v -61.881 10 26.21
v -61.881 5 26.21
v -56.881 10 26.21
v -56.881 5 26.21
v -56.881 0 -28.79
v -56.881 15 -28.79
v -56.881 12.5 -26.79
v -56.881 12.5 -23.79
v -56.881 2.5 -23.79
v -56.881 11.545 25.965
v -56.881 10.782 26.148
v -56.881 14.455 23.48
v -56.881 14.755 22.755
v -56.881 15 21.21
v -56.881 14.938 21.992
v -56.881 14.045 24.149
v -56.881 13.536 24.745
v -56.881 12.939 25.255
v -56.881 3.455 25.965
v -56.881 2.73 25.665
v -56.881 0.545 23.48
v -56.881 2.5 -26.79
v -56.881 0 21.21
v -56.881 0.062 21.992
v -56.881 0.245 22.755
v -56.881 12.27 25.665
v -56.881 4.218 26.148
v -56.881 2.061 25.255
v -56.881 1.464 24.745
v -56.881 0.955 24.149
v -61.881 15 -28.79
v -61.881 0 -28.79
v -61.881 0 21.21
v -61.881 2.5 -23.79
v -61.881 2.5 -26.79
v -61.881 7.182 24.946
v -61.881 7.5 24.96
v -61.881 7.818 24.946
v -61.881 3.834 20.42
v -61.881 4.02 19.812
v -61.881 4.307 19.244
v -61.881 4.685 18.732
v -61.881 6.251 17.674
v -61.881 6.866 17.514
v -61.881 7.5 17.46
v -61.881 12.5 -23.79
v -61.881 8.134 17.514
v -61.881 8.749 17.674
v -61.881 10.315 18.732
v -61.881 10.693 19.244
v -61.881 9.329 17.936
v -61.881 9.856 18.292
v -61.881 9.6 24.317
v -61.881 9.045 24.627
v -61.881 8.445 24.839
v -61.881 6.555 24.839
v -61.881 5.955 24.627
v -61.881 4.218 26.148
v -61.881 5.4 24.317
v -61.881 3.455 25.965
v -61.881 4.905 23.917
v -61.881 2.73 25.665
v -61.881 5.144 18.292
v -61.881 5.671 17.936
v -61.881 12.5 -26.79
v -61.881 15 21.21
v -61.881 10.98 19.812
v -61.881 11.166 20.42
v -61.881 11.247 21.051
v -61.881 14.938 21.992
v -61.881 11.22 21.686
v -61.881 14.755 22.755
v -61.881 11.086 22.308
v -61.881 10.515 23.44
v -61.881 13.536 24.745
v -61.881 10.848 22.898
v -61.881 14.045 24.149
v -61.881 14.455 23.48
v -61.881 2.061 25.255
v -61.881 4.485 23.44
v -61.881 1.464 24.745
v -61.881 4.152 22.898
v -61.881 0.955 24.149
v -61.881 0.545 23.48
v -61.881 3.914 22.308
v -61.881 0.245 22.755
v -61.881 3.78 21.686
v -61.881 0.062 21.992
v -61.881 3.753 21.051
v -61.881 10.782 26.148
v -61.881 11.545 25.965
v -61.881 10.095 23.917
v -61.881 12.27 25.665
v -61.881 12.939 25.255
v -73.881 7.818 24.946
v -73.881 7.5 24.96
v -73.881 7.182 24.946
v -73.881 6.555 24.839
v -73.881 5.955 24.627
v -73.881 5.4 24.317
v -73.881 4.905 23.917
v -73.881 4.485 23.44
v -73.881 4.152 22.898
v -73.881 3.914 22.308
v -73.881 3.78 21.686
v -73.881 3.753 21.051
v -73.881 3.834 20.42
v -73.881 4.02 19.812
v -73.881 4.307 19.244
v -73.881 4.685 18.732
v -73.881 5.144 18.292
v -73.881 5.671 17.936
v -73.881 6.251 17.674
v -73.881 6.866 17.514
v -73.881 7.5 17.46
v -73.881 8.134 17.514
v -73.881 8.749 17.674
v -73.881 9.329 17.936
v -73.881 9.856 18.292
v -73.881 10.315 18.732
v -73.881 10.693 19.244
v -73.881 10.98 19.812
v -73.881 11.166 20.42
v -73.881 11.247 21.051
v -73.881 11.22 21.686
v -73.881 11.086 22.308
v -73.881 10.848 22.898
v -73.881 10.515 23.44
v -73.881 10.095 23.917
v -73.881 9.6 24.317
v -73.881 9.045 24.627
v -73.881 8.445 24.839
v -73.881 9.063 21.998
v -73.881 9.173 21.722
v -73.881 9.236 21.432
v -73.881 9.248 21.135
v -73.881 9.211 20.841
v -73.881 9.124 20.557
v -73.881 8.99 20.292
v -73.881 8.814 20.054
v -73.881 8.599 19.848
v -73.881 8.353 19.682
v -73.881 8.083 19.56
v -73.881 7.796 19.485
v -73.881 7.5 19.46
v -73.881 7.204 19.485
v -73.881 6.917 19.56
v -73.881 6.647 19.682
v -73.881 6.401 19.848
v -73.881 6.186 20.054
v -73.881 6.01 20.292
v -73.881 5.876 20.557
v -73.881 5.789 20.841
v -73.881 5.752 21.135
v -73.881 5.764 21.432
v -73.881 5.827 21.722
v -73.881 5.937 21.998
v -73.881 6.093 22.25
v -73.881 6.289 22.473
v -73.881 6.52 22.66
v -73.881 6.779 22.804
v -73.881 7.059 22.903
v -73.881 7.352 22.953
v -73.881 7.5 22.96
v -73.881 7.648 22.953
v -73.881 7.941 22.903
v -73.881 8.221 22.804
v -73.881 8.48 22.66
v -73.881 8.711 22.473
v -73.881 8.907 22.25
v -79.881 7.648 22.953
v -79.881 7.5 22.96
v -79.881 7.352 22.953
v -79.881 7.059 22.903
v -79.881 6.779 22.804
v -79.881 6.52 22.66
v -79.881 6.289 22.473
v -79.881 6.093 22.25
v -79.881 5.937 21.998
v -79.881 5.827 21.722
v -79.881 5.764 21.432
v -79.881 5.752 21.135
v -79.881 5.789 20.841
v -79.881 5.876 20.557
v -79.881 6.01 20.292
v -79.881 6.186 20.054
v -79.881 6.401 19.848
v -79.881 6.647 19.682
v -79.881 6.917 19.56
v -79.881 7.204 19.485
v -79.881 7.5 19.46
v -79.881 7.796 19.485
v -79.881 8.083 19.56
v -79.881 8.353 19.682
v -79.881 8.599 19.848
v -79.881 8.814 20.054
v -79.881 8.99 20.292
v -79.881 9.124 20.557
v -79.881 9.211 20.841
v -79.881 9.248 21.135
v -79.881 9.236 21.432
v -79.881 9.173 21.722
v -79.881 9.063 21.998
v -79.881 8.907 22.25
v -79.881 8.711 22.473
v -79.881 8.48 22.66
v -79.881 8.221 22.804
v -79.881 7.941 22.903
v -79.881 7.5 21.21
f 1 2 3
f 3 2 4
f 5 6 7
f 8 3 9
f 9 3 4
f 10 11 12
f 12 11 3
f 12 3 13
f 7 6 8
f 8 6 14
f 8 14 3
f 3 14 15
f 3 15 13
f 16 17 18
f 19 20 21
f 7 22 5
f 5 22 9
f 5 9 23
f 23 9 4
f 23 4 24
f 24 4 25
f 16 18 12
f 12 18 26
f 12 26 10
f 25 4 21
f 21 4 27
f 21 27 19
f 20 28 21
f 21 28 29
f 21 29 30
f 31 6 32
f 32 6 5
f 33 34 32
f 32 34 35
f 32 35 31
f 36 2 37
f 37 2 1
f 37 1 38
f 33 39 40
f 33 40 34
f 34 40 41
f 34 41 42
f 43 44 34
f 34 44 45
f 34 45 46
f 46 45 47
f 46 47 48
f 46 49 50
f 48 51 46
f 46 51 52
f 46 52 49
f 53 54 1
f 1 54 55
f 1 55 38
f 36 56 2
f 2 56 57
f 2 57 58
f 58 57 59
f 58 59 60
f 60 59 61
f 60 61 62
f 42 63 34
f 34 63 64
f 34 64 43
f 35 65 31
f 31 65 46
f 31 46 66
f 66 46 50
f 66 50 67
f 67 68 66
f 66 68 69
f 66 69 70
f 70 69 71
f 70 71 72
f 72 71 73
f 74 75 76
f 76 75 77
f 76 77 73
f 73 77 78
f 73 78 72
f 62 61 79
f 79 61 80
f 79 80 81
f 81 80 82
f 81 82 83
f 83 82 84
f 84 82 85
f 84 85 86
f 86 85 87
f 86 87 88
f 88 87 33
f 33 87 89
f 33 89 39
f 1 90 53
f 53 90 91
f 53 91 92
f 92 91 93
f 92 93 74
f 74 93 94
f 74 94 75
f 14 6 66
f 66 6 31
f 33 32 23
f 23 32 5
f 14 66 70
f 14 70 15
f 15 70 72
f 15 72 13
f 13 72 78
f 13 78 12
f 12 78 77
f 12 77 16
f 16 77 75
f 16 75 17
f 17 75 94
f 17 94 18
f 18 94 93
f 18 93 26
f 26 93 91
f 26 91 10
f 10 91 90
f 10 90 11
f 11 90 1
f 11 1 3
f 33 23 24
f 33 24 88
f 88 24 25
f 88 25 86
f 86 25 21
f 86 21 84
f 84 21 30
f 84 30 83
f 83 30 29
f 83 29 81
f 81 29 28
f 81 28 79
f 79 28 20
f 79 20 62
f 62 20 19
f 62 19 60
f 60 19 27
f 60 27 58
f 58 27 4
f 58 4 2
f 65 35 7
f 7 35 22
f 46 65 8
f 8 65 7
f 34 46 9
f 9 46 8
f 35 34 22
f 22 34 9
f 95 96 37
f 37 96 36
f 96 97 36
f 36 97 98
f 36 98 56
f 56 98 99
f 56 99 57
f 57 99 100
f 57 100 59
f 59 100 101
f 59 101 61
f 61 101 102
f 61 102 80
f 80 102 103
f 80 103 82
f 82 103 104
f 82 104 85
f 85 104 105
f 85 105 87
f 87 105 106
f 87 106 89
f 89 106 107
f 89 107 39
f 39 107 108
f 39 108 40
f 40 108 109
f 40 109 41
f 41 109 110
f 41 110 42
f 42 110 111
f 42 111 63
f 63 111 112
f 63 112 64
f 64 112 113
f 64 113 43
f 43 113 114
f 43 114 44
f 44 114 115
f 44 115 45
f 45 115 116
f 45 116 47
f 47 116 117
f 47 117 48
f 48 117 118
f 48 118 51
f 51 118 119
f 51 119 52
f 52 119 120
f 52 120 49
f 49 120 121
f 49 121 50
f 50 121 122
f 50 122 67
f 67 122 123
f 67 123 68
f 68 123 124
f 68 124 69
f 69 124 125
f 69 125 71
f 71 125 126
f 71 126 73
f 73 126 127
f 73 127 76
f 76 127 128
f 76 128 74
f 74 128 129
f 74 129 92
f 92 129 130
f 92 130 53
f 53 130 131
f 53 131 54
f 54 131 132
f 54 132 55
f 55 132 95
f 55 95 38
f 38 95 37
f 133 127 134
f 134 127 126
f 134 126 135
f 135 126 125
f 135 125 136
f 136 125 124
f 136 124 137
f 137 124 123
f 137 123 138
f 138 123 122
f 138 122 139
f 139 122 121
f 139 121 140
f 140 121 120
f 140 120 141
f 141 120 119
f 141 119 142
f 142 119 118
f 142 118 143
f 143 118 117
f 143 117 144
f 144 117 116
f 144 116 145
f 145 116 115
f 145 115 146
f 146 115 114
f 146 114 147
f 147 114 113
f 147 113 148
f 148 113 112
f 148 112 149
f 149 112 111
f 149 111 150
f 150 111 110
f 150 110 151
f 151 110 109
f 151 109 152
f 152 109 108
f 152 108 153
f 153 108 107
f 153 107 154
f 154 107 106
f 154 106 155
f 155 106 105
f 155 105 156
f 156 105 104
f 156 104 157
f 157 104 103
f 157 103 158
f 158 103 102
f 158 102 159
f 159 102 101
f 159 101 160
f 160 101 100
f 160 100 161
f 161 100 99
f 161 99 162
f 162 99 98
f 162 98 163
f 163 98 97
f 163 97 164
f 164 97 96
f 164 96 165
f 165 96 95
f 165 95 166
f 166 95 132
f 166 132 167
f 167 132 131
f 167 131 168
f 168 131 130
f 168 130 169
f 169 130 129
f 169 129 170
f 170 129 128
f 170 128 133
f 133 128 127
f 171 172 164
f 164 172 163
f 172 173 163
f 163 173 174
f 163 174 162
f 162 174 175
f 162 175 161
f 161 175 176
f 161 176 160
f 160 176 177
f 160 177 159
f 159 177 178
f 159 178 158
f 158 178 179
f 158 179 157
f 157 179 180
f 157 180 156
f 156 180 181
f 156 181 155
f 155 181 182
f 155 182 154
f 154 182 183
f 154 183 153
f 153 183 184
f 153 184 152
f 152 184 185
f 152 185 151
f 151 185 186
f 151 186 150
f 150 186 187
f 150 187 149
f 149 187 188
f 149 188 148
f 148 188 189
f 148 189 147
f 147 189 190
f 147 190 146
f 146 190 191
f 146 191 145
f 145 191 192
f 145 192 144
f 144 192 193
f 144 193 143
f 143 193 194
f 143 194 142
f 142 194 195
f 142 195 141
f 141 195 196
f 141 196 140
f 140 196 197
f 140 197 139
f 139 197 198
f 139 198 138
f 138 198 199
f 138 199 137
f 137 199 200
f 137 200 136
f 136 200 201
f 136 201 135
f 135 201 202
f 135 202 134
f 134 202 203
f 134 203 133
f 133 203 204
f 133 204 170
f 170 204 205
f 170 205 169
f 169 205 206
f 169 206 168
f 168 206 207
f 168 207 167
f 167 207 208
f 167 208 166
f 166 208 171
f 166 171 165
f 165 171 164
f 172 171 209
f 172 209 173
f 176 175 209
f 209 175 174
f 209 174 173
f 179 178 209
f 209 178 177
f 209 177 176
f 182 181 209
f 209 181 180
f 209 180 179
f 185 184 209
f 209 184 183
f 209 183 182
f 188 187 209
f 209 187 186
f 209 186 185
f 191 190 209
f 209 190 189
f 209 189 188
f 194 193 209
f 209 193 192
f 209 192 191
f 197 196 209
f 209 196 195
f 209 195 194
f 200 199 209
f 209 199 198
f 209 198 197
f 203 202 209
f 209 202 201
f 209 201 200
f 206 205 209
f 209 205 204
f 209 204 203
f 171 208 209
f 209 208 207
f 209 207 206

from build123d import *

# Parameters (mm, degrees)
SKETCH1_W           = 5
SKETCH1_H           = 55
BOSS_EXTRUDE1_DEPTH = 15
FILLET1_R           = 5
SKETCH2_W           = 3
SKETCH2_H           = 10
CUT_EXTRUDE1_DEPTH  = 5
SKETCH3_R           = 3.75
BOSS_EXTRUDE2_DEPTH = 12
SKETCH4_R           = 1.75
BOSS_EXTRUDE3_DEPTH = 6


with BuildPart() as part:
    # Sketch1 → Boss-Extrude1 (new body)
    with BuildSketch(Plane(origin=(0, 0, 0), x_dir=(1, 0, 0), z_dir=(0, 1, 0))):
        with Locations((-59.380536913, 1.290268456)):
            Rectangle(SKETCH1_W, SKETCH1_H)
    extrude(amount=BOSS_EXTRUDE1_DEPTH)

    # Fillet1
    fillet1_edges = [part.edges().sort_by_distance(p)[0] for p in [
        (-59.380536913, 15, 26.209731544),
        (-59.380536913, 0, 26.209731544),
    ]]
    fillet(fillet1_edges, radius=FILLET1_R)

    # Sketch2 → Cut-Extrude1 (cut)
    with BuildSketch(Plane.ZY.offset(61.880536913)):
        with Locations((-25.290268456, 7.5)):
            Rectangle(SKETCH2_W, SKETCH2_H)
    extrude(amount=-CUT_EXTRUDE1_DEPTH, mode=Mode.SUBTRACT)

    # Sketch3 → Boss-Extrude2 (add)
    with BuildSketch(Plane.ZY.offset(61.880536913)):
        with Locations((21.209731544, 7.5)):
            Circle(SKETCH3_R)
    extrude(amount=BOSS_EXTRUDE2_DEPTH)

    # Sketch4 → Boss-Extrude3 (add)
    with BuildSketch(Plane.ZY.offset(73.880536913)):
        with Locations((21.209731544, 7.5)):
            Circle(SKETCH4_R)
    extrude(amount=BOSS_EXTRUDE3_DEPTH)


solid = part.part
